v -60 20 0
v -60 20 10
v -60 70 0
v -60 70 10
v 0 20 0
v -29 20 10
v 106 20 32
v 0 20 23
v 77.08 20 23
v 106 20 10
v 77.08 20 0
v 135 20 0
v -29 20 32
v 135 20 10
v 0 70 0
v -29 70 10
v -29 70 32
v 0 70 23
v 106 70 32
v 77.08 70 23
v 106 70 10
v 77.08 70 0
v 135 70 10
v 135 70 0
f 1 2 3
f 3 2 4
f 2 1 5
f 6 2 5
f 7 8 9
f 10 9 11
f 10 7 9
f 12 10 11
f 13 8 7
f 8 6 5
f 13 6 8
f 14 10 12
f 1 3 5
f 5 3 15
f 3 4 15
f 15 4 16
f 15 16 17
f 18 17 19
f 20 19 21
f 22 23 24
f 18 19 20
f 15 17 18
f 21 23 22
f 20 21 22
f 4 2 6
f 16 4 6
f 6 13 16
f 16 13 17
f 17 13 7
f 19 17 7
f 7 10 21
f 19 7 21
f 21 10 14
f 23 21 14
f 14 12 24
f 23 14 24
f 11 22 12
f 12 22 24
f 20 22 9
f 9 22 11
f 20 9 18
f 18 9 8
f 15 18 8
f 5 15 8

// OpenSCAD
difference() {
union() {
 translate([-29,20,0]) cube([135.0,50.0,32.0]);
 translate([95,20,0]) cube([40,50,10.0]);
 translate([-60,20,0]) cube([40,50,10.0]);
}
cube([77.08,126.2,23.0]);
}
